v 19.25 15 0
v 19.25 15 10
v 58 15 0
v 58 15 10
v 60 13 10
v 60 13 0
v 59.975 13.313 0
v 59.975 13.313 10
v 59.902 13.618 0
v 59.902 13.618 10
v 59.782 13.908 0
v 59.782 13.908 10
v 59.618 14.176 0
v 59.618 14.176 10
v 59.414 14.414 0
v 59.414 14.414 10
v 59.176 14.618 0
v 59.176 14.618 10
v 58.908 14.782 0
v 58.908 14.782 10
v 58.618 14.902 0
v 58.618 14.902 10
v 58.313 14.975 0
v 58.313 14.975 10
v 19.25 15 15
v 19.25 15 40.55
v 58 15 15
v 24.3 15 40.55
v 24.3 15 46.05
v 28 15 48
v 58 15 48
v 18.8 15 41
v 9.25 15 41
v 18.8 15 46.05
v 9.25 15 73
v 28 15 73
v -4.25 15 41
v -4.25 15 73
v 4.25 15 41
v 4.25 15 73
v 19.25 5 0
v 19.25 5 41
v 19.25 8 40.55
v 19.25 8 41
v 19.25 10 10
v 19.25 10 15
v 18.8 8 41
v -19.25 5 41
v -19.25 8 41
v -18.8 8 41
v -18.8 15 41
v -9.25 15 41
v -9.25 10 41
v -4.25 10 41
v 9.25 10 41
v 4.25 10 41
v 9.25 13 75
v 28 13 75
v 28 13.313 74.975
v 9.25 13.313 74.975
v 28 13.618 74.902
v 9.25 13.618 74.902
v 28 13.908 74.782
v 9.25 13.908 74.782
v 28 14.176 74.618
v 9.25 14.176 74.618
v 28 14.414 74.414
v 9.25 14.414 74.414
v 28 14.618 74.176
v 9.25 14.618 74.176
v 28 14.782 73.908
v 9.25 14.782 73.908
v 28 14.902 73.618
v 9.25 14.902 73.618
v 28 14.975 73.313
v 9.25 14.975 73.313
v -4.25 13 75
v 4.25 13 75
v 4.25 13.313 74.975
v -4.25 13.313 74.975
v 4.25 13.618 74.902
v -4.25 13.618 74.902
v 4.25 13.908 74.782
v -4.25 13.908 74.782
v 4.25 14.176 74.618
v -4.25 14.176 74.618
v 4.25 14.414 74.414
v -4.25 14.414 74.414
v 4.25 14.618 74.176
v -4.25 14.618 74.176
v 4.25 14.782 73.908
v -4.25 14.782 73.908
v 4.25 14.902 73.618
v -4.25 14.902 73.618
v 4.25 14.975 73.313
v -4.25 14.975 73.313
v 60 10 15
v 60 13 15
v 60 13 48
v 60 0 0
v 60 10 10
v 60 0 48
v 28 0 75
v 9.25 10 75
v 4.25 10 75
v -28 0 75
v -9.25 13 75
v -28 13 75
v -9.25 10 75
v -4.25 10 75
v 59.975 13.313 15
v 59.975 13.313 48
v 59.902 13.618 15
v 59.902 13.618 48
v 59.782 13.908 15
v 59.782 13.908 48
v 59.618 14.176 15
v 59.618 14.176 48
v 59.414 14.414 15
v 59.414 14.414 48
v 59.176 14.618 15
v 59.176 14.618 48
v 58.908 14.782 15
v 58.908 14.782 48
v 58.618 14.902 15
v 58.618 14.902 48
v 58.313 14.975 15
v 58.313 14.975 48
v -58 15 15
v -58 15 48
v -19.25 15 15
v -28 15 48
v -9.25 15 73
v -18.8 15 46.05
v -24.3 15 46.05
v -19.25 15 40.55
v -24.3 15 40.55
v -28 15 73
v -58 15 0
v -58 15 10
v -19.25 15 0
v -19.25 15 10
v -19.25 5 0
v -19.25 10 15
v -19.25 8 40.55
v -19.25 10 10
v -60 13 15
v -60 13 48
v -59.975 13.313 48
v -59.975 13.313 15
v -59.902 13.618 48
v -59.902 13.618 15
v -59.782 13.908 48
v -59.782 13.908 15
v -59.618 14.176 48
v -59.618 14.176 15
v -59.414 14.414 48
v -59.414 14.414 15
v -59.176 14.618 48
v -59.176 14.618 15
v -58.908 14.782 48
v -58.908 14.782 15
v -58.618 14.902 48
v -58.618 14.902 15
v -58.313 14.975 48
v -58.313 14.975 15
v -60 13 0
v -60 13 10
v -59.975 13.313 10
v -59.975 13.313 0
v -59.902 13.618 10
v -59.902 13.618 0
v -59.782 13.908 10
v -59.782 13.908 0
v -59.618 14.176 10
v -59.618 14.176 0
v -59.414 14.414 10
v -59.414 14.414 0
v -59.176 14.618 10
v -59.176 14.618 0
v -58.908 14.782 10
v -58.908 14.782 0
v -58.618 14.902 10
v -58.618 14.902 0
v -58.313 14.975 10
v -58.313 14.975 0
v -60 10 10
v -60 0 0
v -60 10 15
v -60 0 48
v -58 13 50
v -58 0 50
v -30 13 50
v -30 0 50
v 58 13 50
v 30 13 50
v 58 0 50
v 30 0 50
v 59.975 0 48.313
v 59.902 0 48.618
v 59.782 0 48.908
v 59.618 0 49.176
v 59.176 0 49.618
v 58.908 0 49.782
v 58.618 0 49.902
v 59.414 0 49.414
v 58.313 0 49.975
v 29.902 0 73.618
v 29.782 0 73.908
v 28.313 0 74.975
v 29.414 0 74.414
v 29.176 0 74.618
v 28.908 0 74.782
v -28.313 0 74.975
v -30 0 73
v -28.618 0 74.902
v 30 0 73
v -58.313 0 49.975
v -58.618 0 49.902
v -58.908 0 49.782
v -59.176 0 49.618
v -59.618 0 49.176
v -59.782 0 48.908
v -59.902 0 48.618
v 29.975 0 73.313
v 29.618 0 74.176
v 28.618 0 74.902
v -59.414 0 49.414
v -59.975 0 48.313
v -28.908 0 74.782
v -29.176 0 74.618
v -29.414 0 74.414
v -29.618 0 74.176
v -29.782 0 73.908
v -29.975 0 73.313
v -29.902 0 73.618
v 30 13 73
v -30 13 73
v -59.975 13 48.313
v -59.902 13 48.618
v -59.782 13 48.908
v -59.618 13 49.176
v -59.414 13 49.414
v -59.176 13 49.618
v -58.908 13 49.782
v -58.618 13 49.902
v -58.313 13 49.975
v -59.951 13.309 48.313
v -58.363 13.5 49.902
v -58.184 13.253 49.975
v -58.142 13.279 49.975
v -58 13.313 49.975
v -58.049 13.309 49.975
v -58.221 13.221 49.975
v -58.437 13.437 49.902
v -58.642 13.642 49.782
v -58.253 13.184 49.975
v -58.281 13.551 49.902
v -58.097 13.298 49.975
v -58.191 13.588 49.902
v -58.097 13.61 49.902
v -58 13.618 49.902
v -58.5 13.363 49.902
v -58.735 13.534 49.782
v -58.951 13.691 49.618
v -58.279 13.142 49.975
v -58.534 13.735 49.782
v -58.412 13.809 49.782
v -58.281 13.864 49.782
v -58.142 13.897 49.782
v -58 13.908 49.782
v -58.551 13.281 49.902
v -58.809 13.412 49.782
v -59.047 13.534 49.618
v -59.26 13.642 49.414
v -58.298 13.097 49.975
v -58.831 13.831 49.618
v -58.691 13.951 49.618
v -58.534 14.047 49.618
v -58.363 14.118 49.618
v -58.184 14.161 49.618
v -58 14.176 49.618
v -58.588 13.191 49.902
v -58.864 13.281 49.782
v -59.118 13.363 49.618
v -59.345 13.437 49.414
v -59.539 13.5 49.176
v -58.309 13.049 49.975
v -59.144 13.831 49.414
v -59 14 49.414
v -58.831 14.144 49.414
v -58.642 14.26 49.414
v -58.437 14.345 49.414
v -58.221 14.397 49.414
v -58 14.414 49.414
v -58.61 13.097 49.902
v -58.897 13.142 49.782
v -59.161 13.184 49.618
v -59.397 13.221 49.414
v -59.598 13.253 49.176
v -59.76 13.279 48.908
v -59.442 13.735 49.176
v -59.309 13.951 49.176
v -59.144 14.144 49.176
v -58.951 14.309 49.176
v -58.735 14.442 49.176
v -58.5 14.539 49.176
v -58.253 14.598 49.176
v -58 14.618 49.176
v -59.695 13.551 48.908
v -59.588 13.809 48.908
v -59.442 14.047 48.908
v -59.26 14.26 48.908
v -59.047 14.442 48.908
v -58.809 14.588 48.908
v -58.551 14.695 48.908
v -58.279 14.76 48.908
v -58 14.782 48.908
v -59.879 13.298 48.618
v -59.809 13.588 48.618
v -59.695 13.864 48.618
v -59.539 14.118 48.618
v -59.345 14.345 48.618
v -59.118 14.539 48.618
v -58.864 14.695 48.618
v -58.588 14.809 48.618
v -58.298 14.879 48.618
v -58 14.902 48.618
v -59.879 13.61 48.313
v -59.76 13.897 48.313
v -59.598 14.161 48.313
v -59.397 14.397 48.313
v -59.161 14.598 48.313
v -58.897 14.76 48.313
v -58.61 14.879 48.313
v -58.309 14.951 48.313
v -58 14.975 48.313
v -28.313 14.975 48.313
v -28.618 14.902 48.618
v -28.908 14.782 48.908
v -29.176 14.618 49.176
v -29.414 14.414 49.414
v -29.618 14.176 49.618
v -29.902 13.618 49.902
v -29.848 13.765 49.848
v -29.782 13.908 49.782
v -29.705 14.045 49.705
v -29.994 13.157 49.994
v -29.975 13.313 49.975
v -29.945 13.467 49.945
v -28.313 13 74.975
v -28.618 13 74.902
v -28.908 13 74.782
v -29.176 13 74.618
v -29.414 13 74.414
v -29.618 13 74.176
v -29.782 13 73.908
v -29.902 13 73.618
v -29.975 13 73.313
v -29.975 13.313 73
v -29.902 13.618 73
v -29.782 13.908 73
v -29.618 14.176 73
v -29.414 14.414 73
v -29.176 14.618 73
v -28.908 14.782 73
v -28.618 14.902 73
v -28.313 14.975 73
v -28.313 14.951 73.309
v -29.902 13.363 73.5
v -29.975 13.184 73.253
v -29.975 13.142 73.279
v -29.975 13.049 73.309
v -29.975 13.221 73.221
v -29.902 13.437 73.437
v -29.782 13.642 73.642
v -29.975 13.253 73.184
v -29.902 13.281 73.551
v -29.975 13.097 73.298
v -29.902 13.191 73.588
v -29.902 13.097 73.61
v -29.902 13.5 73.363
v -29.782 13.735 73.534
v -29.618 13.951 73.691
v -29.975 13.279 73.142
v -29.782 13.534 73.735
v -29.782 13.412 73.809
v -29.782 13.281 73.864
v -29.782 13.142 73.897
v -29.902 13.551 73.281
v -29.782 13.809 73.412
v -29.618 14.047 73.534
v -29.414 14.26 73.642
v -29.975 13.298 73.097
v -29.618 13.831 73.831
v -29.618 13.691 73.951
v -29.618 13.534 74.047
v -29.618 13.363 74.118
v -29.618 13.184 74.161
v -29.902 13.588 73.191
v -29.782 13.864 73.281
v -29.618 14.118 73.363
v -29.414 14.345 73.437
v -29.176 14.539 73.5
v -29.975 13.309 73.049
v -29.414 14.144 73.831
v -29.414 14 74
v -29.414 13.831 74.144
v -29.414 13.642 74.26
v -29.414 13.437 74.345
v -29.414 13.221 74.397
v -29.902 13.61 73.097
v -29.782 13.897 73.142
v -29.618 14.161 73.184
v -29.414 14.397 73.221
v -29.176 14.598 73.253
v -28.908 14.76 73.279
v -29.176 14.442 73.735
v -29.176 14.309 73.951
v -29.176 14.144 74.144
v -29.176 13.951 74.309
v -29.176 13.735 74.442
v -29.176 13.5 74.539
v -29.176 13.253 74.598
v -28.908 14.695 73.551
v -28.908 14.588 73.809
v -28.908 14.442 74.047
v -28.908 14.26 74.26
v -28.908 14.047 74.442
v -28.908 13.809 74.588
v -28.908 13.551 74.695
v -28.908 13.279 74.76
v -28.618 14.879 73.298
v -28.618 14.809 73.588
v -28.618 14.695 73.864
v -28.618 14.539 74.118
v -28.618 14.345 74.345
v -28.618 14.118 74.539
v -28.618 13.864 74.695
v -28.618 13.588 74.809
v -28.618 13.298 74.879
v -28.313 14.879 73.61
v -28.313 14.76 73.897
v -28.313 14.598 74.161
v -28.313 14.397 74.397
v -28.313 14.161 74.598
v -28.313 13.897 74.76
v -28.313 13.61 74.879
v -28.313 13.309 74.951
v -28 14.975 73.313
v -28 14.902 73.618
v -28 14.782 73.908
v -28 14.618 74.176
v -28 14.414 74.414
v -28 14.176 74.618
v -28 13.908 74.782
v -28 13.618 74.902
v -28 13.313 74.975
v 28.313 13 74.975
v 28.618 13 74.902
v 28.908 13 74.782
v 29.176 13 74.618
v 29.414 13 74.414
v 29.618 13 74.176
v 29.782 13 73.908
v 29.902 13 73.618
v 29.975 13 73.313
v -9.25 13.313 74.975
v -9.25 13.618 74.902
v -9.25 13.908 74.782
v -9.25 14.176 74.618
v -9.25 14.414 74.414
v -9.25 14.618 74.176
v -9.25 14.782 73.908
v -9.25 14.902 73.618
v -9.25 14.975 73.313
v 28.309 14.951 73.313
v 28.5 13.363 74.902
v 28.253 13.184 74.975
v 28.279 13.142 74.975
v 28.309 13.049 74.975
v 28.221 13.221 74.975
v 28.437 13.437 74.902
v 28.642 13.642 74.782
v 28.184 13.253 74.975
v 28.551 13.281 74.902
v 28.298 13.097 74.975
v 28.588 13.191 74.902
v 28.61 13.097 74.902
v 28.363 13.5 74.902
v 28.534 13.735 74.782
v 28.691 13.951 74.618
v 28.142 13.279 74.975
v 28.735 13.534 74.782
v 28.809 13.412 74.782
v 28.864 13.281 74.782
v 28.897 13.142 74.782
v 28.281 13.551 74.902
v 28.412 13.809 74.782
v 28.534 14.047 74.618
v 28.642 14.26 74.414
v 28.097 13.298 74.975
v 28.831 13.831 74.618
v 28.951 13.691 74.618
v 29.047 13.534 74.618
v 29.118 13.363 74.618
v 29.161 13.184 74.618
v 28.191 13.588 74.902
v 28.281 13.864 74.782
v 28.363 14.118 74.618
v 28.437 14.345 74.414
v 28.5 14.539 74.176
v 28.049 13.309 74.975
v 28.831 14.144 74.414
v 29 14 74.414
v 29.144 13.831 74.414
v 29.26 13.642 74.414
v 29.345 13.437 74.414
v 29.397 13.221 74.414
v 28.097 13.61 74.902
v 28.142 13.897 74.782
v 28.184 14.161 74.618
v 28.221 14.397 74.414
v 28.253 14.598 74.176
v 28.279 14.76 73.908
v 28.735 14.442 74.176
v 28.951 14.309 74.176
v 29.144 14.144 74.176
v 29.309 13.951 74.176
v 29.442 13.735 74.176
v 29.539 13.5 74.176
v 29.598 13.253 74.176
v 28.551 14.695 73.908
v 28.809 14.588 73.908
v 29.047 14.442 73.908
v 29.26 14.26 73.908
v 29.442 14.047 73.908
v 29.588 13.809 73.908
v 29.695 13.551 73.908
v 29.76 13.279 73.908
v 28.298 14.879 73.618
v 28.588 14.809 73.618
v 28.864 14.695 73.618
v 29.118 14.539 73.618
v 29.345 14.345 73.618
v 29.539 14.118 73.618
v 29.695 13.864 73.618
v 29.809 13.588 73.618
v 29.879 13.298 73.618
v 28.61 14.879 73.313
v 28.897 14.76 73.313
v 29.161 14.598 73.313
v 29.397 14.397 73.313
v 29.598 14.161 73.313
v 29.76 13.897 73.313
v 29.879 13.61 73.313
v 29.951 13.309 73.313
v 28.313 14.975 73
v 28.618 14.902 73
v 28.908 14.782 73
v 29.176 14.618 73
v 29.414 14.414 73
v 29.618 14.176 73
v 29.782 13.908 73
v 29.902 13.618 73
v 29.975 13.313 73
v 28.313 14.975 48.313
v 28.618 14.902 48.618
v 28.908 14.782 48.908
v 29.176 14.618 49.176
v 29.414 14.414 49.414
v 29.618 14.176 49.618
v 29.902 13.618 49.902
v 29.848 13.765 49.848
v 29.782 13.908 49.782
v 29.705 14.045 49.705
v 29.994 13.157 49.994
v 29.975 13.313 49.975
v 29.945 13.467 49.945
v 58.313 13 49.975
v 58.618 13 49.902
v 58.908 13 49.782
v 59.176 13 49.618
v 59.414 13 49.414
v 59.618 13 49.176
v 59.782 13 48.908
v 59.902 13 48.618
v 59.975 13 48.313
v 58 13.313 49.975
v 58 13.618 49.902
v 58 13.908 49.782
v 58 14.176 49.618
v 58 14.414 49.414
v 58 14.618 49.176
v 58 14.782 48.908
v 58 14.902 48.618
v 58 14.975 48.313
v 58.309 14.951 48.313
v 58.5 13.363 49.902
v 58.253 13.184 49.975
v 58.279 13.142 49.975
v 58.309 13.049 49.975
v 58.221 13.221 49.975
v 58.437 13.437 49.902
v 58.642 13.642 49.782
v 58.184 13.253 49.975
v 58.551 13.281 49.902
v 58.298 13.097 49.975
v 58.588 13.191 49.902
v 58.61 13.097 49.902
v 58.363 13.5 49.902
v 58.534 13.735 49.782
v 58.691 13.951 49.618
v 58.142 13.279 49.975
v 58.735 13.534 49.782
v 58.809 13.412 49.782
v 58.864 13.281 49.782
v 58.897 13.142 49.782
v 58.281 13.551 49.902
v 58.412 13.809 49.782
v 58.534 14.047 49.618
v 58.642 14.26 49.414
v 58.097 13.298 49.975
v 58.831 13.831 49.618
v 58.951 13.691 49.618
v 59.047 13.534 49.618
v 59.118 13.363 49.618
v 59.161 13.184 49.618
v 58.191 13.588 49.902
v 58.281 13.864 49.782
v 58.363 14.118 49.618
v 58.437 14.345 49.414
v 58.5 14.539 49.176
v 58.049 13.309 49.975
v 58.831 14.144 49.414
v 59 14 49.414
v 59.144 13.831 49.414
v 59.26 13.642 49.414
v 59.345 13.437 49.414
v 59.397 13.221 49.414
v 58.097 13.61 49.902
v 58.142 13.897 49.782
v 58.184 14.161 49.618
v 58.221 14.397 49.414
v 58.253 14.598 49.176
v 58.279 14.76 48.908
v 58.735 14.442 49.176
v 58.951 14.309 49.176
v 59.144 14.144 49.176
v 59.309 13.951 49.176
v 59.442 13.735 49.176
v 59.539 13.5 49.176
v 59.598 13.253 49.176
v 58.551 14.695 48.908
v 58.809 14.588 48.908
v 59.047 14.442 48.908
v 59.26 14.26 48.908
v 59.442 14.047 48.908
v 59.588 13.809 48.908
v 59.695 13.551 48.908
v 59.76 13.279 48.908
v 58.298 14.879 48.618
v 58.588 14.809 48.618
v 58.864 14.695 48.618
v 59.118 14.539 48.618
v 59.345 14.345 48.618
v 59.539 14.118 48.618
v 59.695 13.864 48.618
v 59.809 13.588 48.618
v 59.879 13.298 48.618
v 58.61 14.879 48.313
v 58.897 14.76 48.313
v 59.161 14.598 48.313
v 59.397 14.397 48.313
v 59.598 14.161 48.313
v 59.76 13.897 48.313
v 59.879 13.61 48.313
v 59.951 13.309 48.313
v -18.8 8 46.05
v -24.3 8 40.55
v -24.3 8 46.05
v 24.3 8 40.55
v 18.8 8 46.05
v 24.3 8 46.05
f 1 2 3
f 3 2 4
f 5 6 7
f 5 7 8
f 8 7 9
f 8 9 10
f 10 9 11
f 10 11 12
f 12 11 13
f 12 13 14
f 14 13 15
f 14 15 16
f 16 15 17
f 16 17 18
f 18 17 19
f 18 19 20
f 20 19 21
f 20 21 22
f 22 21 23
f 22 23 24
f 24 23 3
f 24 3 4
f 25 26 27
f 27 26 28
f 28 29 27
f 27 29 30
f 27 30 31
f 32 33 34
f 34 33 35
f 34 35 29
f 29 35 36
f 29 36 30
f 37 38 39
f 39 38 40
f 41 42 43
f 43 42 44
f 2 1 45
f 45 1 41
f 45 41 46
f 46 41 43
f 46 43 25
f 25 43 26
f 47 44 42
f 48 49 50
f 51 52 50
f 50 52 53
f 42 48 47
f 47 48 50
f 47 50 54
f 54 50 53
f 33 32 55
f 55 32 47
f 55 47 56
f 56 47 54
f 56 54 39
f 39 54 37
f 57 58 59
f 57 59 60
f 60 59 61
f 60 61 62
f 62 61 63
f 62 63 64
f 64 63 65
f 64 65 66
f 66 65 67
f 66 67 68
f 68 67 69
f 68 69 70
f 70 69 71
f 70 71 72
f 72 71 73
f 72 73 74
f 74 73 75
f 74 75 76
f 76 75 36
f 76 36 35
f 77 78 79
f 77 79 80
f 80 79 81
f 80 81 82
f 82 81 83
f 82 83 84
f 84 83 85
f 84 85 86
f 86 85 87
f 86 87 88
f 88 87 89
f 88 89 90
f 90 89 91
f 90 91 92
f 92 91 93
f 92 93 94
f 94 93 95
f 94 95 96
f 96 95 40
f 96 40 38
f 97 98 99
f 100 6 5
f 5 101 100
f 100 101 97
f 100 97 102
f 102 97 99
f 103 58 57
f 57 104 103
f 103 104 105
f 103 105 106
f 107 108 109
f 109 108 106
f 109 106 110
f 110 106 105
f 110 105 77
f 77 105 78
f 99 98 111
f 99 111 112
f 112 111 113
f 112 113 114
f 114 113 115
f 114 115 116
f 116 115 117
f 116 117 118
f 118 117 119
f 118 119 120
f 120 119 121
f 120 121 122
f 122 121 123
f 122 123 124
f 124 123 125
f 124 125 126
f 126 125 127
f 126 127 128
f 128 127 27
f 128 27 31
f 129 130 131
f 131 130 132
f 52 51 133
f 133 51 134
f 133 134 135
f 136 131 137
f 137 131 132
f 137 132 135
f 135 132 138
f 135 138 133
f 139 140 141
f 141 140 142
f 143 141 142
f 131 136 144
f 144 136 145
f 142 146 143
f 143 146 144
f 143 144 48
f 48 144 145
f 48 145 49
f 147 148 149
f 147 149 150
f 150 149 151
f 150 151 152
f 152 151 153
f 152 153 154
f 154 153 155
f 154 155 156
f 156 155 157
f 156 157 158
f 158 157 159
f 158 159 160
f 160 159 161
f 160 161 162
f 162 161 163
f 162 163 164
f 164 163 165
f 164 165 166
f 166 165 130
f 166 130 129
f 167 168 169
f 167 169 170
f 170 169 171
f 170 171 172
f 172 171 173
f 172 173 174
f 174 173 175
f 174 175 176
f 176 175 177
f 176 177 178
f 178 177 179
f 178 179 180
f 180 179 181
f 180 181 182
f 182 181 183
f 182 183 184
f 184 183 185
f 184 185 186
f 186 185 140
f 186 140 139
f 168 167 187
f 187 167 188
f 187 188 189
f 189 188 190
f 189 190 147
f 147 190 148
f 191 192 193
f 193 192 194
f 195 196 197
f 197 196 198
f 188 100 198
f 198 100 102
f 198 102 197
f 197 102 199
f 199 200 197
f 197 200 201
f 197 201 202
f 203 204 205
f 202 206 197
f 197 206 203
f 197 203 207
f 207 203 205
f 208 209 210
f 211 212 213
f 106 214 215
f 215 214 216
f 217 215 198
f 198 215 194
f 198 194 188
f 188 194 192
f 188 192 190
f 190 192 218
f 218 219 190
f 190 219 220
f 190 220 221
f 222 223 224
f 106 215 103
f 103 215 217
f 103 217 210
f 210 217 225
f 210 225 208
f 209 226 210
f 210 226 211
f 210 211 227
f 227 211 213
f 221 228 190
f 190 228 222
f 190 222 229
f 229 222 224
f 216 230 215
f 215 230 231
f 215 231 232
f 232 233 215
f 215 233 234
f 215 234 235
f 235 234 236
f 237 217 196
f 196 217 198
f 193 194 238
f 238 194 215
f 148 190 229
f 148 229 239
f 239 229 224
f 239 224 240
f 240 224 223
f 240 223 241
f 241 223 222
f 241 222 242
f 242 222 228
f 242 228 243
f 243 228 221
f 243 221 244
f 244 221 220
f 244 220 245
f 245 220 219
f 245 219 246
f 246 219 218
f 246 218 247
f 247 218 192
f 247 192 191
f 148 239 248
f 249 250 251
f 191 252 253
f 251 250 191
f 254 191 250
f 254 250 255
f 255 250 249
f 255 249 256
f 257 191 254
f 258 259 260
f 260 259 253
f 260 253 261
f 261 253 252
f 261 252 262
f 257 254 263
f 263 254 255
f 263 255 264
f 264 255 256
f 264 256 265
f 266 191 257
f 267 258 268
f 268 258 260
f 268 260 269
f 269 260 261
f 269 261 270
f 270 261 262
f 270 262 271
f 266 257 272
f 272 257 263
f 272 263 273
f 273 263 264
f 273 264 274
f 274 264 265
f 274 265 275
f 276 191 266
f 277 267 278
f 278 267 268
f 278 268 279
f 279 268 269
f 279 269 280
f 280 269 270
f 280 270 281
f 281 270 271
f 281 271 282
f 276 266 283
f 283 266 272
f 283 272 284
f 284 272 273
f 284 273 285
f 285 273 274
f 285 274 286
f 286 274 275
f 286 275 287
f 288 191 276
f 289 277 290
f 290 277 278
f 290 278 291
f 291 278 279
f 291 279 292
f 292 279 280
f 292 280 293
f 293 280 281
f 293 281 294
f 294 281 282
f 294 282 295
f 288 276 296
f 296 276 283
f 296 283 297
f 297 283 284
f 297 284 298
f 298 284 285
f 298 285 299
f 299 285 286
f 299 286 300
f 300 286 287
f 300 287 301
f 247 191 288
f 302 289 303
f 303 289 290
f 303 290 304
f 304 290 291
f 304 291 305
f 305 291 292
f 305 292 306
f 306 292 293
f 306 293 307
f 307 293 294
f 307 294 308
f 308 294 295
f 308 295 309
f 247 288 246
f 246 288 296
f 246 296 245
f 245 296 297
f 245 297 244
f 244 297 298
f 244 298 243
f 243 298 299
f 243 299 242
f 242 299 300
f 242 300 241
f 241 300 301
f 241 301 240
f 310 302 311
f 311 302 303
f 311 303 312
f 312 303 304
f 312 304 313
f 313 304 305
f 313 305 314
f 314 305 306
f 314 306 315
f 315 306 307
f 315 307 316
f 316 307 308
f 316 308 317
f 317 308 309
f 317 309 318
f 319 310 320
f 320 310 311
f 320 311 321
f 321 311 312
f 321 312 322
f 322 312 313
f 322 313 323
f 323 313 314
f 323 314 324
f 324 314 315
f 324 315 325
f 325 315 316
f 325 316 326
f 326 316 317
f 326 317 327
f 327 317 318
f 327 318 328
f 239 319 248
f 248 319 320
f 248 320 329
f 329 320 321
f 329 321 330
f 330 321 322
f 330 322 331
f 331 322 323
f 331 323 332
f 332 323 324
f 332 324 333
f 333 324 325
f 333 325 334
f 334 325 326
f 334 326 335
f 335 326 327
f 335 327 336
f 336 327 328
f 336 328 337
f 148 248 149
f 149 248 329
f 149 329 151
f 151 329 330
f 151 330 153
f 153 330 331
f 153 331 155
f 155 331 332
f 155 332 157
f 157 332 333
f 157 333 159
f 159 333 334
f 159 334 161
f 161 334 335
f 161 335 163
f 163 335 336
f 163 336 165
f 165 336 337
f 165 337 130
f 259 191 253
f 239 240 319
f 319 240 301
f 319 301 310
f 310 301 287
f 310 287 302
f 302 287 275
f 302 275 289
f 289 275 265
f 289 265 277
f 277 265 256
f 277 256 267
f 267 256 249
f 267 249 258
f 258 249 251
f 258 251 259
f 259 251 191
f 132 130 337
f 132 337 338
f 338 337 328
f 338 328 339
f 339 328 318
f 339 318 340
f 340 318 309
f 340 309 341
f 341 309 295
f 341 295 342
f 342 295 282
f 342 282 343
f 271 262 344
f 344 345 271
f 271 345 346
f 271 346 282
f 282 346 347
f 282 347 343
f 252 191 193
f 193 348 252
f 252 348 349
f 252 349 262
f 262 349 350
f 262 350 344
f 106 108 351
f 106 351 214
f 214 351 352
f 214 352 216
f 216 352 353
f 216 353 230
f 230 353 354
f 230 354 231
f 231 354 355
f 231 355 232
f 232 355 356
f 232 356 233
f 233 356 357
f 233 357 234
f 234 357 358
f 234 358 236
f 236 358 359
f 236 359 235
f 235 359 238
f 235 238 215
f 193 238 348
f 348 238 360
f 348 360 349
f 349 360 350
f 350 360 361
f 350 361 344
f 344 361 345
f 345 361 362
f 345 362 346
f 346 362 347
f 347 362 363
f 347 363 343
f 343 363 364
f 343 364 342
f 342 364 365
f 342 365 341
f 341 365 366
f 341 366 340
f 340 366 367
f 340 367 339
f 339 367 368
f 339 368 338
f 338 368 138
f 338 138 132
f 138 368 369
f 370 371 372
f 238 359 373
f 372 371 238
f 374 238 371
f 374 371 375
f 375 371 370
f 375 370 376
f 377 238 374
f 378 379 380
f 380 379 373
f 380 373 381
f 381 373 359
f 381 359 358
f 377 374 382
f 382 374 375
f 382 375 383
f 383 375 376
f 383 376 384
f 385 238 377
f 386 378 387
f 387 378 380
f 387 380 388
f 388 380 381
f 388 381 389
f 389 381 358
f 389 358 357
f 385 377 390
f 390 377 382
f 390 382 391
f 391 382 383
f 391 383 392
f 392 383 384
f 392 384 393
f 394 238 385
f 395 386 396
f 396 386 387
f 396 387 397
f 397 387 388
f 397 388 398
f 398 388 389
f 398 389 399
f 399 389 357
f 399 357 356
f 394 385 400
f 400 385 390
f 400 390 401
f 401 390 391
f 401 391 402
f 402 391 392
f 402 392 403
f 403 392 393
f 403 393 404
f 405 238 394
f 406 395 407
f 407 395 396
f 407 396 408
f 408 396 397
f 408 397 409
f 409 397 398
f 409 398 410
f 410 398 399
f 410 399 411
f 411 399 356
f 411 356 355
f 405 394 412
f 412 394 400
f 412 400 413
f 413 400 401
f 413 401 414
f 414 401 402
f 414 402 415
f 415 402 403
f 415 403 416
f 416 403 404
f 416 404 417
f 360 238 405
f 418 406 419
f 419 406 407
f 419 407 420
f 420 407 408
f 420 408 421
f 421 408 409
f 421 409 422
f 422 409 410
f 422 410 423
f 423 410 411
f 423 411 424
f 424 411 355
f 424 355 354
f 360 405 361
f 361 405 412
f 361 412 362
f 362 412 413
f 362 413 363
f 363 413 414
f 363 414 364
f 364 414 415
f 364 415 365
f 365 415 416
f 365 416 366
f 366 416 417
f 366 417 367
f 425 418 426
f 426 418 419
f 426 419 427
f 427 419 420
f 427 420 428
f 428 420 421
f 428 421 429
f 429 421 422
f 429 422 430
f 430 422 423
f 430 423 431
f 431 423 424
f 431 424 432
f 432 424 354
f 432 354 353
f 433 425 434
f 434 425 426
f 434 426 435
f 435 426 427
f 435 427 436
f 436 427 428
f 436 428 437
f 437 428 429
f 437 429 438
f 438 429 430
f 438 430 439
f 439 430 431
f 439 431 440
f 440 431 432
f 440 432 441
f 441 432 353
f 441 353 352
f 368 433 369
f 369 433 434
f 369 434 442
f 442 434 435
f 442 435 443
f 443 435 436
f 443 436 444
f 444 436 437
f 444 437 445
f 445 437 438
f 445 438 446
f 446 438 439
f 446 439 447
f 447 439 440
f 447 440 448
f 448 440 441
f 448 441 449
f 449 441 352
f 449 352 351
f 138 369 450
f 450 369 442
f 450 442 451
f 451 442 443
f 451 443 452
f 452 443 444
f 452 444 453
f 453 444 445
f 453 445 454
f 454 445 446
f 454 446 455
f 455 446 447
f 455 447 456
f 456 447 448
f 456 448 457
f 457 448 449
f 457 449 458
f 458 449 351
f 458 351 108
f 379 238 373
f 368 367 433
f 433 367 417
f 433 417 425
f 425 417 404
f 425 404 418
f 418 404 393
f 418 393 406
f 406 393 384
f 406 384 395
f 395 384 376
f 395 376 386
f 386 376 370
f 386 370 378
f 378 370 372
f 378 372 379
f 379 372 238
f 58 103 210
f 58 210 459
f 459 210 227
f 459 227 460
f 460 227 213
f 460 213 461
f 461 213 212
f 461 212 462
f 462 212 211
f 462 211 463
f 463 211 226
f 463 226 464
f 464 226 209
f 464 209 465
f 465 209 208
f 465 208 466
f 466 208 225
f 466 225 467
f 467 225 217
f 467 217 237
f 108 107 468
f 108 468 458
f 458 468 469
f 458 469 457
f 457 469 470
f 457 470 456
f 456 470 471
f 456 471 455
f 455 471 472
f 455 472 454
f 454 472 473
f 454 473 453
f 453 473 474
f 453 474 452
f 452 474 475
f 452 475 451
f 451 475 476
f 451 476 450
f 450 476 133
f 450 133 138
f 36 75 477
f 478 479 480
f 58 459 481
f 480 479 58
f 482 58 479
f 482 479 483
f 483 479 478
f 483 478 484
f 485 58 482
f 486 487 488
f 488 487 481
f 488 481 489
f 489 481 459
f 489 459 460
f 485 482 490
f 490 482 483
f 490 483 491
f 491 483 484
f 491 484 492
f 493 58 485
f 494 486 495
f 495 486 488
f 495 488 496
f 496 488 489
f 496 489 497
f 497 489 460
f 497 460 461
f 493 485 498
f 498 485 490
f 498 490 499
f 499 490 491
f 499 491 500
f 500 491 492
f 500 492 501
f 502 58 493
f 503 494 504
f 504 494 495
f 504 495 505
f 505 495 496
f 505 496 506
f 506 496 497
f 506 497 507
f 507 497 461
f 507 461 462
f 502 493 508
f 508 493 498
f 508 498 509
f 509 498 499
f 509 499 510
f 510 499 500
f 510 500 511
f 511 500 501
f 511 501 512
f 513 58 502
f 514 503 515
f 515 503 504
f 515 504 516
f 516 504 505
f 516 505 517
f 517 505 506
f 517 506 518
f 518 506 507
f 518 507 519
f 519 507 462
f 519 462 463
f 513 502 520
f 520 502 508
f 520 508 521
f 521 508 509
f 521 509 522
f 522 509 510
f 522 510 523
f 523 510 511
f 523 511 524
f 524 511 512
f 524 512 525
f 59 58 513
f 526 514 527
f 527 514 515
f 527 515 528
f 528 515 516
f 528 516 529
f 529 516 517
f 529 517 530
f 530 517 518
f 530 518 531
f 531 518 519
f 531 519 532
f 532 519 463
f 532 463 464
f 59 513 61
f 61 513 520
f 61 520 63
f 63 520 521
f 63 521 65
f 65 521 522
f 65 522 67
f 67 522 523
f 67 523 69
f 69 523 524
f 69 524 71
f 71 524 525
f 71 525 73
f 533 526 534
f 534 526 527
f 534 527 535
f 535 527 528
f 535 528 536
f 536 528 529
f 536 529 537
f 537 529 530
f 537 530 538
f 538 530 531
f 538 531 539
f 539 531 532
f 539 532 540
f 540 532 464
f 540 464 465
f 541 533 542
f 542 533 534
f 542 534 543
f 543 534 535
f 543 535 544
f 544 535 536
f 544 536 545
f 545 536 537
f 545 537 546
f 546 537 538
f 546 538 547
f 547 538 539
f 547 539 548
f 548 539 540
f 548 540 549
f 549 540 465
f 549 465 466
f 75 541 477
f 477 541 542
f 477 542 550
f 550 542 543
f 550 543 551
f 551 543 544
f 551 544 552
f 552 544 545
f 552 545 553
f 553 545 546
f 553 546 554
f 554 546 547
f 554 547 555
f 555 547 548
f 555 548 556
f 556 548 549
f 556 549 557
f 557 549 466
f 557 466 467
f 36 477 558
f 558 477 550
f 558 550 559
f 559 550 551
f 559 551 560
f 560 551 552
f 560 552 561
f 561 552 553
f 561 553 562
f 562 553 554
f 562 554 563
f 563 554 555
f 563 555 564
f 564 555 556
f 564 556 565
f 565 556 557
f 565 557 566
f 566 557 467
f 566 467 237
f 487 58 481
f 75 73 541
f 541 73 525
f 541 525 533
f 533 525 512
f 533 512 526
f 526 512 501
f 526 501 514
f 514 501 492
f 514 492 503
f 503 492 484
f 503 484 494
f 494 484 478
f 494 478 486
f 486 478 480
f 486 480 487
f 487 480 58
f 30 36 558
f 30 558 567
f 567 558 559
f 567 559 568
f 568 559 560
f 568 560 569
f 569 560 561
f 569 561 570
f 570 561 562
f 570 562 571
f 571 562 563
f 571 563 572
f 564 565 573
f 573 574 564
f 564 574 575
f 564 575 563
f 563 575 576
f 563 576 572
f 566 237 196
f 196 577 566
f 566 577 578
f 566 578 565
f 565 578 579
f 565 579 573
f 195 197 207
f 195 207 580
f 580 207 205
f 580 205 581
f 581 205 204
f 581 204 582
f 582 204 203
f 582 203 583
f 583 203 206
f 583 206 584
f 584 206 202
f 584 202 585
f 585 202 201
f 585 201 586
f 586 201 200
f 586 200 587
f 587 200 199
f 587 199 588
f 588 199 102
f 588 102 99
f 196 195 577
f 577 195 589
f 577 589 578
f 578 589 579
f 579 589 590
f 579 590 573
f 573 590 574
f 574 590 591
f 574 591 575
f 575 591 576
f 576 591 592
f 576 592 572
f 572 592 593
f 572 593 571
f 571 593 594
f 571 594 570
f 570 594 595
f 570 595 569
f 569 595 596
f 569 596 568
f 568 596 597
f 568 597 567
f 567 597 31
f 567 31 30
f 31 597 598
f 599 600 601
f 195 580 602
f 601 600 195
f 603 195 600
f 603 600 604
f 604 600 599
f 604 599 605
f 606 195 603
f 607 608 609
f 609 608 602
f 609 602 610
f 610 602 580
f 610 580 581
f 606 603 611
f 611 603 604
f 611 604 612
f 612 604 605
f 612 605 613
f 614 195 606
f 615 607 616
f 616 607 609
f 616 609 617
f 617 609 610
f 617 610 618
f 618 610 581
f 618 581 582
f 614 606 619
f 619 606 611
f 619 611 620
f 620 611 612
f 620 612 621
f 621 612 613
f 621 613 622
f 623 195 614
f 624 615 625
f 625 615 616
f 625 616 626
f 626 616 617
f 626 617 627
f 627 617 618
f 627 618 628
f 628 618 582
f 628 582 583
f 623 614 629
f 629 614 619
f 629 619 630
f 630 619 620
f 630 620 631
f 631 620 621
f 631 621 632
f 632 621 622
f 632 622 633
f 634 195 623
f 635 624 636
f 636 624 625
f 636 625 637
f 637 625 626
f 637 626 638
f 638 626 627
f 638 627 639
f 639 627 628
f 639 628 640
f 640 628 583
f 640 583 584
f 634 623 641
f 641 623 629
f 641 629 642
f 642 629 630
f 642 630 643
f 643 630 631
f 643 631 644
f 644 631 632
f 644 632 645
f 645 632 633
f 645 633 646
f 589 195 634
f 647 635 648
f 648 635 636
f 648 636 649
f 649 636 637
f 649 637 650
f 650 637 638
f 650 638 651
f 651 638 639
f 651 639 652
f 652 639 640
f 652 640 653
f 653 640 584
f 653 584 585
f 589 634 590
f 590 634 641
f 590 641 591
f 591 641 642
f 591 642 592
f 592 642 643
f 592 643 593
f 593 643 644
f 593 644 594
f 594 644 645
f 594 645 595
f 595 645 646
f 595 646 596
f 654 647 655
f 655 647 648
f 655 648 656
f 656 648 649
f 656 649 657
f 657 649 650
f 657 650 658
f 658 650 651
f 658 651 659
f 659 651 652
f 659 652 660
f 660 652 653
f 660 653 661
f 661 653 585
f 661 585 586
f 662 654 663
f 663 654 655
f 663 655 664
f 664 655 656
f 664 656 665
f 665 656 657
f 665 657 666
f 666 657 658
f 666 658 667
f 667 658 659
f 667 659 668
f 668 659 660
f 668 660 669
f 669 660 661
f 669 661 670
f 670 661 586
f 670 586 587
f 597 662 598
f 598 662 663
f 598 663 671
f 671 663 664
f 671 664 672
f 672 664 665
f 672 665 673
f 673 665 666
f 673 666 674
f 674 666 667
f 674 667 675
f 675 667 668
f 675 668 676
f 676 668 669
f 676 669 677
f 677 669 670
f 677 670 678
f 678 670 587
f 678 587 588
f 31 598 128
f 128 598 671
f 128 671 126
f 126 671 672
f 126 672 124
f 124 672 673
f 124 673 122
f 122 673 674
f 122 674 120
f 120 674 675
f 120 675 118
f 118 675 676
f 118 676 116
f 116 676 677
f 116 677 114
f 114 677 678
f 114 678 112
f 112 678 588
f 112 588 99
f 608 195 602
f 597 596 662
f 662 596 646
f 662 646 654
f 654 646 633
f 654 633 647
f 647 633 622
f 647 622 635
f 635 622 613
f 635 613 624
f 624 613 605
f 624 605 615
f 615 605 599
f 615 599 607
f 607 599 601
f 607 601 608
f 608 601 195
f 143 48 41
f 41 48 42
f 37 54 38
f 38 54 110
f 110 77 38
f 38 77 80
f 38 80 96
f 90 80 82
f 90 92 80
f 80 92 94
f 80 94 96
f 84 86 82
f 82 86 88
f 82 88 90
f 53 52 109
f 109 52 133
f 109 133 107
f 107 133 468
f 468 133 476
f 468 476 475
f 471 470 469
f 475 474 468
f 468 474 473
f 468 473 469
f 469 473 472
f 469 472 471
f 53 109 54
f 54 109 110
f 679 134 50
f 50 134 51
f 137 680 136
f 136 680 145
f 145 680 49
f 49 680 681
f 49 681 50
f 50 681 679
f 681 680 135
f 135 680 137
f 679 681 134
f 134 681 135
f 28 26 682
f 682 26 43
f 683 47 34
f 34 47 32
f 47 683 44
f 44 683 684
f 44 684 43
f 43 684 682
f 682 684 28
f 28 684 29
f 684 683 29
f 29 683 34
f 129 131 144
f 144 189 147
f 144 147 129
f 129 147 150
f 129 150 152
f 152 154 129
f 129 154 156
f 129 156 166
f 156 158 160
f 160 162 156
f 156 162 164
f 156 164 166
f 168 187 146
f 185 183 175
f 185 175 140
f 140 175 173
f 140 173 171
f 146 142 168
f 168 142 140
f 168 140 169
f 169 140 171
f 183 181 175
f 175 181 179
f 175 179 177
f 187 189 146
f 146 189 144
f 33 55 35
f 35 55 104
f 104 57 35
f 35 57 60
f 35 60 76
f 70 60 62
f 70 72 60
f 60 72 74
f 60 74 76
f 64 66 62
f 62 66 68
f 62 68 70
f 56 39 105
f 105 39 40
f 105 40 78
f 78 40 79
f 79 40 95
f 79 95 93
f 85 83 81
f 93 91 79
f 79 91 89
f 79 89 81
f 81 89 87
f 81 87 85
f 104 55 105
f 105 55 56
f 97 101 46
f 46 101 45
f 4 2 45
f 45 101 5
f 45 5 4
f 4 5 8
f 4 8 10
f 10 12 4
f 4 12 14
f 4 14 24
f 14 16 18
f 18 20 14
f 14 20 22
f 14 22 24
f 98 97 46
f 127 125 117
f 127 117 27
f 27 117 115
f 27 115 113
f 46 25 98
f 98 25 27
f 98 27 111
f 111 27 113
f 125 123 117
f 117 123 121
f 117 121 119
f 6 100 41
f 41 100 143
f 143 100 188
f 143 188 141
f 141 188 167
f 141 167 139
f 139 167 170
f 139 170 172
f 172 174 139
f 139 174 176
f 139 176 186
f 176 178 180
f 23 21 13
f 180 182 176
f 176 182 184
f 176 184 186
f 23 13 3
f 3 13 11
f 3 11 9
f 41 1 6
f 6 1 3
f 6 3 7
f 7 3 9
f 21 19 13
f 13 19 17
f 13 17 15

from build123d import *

# Parameters (mm, degrees)
SKETCH1_W                                  = 120
SKETCH1_H                                  = 100
BOSS_EXTRUDE1_DEPTH                        = 15
SKETCH7_W                                  = 60
SKETCH7_H                                  = 25
BOSS_EXTRUDE6_DEPTH                        = 15
FILLET1_R                                  = 2
SKETCH2_W                                  = 38.5
SKETCH2_H                                  = 82
CUT_EXTRUDE1_DEPTH                         = 10
CUT_EXTRUDE3_DEPTH                         = 5
SKETCH11_W                                 = 5.5
SKETCH11_H                                 = 5.5
CUT_EXTRUDE6_DEPTH                         = 7
MIRROR3_AT_THE_SECOND_PLANE_COPY_1_SKETC_W = 5.5
MIRROR3_AT_THE_SECOND_PLANE_COPY_1_SKETC_H = 5.5
MIRROR3_AT_THE_SECOND_PLANE_COPY_1_DEPTH   = 7
MIRROR4_AT_THE_SECOND_PLANE_COPY_1_DEPTH   = 5
CUT_EXTRUDE7_REACH                         = 99.211
SKETCH12_W                                 = 131.778064034
SKETCH12_H                                 = 21.740712993


with BuildPart() as part:
    # Sketch1 → Boss-Extrude1 (new body)
    with BuildSketch(Plane(origin=(0, 0, 0), x_dir=(1, 0, 0), z_dir=(0, 1, 0))):
        Rectangle(SKETCH1_W, SKETCH1_H)
    extrude(amount=BOSS_EXTRUDE1_DEPTH)

    # Sketch7 → Boss-Extrude6 (add)
    with BuildSketch(Plane(origin=(0, 0, 0), x_dir=(1, 0, 0), z_dir=(0, 1, 0))):
        with Locations((0, -62.5)):
            Rectangle(SKETCH7_W, SKETCH7_H)
        with Locations((0, 62.5)):
            Rectangle(SKETCH7_W, SKETCH7_H)
    extrude(amount=BOSS_EXTRUDE6_DEPTH)

    # Fillet1
    fillet1_edges = [part.edges().sort_by_distance(p)[0] for p in [
        (-60, 15, 0),
        (45, 15, 50),
        (-45, 15, 50),
        (-30, 7.5, 75),
        (30, 7.5, 75),
        (-30, 15, 62.5),
        (0, 15, 75),
        (30, 15, 62.5),
        (-45, 15, -50),
        (0, 15, -75),
        (30, 7.5, -75),
        (-30, 15, -62.5),
        (-30, 7.5, -75),
        (30, 15, -62.5),
        (60, 15, 0),
        (60, 7.5, 50),
        (-60, 7.5, 50),
        (-60, 7.5, -50),
        (60, 7.5, -50),
        (45, 15, -50),
    ]]
    fillet(fillet1_edges, radius=FILLET1_R)

    # Sketch2 → Cut-Extrude1 (cut)
    with BuildSketch(Plane(origin=(0, 15, 0), x_dir=(1, 0, 0), z_dir=(0, 1, 0))):
        Rectangle(SKETCH2_W, SKETCH2_H)
    extrude(amount=-CUT_EXTRUDE1_DEPTH, mode=Mode.SUBTRACT)

    # Sketch10 → Cut-Extrude3 (cut)
    with BuildSketch(Plane(origin=(0, 15, 0), x_dir=(1, 0, 0), z_dir=(0, 1, 0))):
        Polygon((-9.25, -40.5), (-9.25, -33.162899401), (-4.25, -33.162899401), (-4.25, -40.5), (-4.25, -89.766264028), (-9.25, -89.766264028), align=None)
        Polygon((-82.808425803, 15), (-19.25, 15), (-11.555108838, 15), (-11.555108838, 10), (-19.25, 10), (-82.808425803, 10), align=None)
    cut_extrude3 = extrude(amount=-CUT_EXTRUDE3_DEPTH, mode=Mode.SUBTRACT)

    # Sketch11 → Cut-Extrude6 (cut)
    with BuildSketch(Plane(origin=(0, 15, 0), x_dir=(1, 0, 0), z_dir=(0, 1, 0))):
        with Locations((-21.549732367, 43.299732367)):
            Rectangle(SKETCH11_W, SKETCH11_H)
    cut_extrude6 = extrude(amount=-CUT_EXTRUDE6_DEPTH, mode=Mode.SUBTRACT)

    # Mirror3: Cut-Extrude6 across plane
    add(cut_extrude6.mirror(Plane(origin=(0, 0, 0), x_dir=(0, 0, 1), z_dir=(1, 0, 0))), mode=Mode.SUBTRACT)

    # Mirror3 at the second plane: Cut-Extrude6 across plane
    add(cut_extrude6.mirror(Plane.XY), mode=Mode.SUBTRACT)

    # Mirror3 at the second plane copy 1 sketc → Mirror3 at the second plane copy 1 (cut)
    with BuildSketch(Plane(origin=(0, 15, 0), x_dir=(-1, 0, 0), z_dir=(0, 1, 0))):
        with Locations((-21.549732367, 43.299732367)):
            Rectangle(MIRROR3_AT_THE_SECOND_PLANE_COPY_1_SKETC_W, MIRROR3_AT_THE_SECOND_PLANE_COPY_1_SKETC_H)
    extrude(amount=-MIRROR3_AT_THE_SECOND_PLANE_COPY_1_DEPTH, mode=Mode.SUBTRACT)

    # Mirror4: Cut-Extrude3 across plane
    add(cut_extrude3.mirror(Plane(origin=(0, 0, 0), x_dir=(0, 0, 1), z_dir=(1, 0, 0))), mode=Mode.SUBTRACT)

    # Mirror4 at the second plane: Cut-Extrude3 across plane
    add(cut_extrude3.mirror(Plane.XY), mode=Mode.SUBTRACT)

    # Mirror4 at the second plane copy 1 sketc → Mirror4 at the second plane copy 1 (cut)
    with BuildSketch(Plane(origin=(0, 15, 0), x_dir=(-1, 0, 0), z_dir=(0, 1, 0))):
        Polygon((-9.25, -40.5), (-9.25, -33.162899401), (-4.25, -33.162899401), (-4.25, -40.5), (-4.25, -89.766264028), (-9.25, -89.766264028), align=None)
        Polygon((-82.808425803, 15), (-19.25, 15), (-11.555108838, 15), (-11.555108838, 10), (-19.25, 10), (-82.808425803, 10), align=None)
    extrude(amount=-MIRROR4_AT_THE_SECOND_PLANE_COPY_1_DEPTH, mode=Mode.SUBTRACT)

    # Sketch12 → Cut-Extrude7 (cut, up to next)
    with BuildSketch(Plane.XY, mode=Mode.PRIVATE) as cut_extrude7_sk1:
        with Locations((-0.266757215, 8.03351443)):
            Rectangle(SKETCH12_W, SKETCH12_H)
    cut_extrude7_tool1 = extrude(cut_extrude7_sk1.sketch, amount=-CUT_EXTRUDE7_REACH, mode=Mode.PRIVATE) & part.part
    add(cut_extrude7_tool1.solids().sort_by_distance((-0.266757, 8.033514, 0))[0], mode=Mode.SUBTRACT)


solid = part.part
